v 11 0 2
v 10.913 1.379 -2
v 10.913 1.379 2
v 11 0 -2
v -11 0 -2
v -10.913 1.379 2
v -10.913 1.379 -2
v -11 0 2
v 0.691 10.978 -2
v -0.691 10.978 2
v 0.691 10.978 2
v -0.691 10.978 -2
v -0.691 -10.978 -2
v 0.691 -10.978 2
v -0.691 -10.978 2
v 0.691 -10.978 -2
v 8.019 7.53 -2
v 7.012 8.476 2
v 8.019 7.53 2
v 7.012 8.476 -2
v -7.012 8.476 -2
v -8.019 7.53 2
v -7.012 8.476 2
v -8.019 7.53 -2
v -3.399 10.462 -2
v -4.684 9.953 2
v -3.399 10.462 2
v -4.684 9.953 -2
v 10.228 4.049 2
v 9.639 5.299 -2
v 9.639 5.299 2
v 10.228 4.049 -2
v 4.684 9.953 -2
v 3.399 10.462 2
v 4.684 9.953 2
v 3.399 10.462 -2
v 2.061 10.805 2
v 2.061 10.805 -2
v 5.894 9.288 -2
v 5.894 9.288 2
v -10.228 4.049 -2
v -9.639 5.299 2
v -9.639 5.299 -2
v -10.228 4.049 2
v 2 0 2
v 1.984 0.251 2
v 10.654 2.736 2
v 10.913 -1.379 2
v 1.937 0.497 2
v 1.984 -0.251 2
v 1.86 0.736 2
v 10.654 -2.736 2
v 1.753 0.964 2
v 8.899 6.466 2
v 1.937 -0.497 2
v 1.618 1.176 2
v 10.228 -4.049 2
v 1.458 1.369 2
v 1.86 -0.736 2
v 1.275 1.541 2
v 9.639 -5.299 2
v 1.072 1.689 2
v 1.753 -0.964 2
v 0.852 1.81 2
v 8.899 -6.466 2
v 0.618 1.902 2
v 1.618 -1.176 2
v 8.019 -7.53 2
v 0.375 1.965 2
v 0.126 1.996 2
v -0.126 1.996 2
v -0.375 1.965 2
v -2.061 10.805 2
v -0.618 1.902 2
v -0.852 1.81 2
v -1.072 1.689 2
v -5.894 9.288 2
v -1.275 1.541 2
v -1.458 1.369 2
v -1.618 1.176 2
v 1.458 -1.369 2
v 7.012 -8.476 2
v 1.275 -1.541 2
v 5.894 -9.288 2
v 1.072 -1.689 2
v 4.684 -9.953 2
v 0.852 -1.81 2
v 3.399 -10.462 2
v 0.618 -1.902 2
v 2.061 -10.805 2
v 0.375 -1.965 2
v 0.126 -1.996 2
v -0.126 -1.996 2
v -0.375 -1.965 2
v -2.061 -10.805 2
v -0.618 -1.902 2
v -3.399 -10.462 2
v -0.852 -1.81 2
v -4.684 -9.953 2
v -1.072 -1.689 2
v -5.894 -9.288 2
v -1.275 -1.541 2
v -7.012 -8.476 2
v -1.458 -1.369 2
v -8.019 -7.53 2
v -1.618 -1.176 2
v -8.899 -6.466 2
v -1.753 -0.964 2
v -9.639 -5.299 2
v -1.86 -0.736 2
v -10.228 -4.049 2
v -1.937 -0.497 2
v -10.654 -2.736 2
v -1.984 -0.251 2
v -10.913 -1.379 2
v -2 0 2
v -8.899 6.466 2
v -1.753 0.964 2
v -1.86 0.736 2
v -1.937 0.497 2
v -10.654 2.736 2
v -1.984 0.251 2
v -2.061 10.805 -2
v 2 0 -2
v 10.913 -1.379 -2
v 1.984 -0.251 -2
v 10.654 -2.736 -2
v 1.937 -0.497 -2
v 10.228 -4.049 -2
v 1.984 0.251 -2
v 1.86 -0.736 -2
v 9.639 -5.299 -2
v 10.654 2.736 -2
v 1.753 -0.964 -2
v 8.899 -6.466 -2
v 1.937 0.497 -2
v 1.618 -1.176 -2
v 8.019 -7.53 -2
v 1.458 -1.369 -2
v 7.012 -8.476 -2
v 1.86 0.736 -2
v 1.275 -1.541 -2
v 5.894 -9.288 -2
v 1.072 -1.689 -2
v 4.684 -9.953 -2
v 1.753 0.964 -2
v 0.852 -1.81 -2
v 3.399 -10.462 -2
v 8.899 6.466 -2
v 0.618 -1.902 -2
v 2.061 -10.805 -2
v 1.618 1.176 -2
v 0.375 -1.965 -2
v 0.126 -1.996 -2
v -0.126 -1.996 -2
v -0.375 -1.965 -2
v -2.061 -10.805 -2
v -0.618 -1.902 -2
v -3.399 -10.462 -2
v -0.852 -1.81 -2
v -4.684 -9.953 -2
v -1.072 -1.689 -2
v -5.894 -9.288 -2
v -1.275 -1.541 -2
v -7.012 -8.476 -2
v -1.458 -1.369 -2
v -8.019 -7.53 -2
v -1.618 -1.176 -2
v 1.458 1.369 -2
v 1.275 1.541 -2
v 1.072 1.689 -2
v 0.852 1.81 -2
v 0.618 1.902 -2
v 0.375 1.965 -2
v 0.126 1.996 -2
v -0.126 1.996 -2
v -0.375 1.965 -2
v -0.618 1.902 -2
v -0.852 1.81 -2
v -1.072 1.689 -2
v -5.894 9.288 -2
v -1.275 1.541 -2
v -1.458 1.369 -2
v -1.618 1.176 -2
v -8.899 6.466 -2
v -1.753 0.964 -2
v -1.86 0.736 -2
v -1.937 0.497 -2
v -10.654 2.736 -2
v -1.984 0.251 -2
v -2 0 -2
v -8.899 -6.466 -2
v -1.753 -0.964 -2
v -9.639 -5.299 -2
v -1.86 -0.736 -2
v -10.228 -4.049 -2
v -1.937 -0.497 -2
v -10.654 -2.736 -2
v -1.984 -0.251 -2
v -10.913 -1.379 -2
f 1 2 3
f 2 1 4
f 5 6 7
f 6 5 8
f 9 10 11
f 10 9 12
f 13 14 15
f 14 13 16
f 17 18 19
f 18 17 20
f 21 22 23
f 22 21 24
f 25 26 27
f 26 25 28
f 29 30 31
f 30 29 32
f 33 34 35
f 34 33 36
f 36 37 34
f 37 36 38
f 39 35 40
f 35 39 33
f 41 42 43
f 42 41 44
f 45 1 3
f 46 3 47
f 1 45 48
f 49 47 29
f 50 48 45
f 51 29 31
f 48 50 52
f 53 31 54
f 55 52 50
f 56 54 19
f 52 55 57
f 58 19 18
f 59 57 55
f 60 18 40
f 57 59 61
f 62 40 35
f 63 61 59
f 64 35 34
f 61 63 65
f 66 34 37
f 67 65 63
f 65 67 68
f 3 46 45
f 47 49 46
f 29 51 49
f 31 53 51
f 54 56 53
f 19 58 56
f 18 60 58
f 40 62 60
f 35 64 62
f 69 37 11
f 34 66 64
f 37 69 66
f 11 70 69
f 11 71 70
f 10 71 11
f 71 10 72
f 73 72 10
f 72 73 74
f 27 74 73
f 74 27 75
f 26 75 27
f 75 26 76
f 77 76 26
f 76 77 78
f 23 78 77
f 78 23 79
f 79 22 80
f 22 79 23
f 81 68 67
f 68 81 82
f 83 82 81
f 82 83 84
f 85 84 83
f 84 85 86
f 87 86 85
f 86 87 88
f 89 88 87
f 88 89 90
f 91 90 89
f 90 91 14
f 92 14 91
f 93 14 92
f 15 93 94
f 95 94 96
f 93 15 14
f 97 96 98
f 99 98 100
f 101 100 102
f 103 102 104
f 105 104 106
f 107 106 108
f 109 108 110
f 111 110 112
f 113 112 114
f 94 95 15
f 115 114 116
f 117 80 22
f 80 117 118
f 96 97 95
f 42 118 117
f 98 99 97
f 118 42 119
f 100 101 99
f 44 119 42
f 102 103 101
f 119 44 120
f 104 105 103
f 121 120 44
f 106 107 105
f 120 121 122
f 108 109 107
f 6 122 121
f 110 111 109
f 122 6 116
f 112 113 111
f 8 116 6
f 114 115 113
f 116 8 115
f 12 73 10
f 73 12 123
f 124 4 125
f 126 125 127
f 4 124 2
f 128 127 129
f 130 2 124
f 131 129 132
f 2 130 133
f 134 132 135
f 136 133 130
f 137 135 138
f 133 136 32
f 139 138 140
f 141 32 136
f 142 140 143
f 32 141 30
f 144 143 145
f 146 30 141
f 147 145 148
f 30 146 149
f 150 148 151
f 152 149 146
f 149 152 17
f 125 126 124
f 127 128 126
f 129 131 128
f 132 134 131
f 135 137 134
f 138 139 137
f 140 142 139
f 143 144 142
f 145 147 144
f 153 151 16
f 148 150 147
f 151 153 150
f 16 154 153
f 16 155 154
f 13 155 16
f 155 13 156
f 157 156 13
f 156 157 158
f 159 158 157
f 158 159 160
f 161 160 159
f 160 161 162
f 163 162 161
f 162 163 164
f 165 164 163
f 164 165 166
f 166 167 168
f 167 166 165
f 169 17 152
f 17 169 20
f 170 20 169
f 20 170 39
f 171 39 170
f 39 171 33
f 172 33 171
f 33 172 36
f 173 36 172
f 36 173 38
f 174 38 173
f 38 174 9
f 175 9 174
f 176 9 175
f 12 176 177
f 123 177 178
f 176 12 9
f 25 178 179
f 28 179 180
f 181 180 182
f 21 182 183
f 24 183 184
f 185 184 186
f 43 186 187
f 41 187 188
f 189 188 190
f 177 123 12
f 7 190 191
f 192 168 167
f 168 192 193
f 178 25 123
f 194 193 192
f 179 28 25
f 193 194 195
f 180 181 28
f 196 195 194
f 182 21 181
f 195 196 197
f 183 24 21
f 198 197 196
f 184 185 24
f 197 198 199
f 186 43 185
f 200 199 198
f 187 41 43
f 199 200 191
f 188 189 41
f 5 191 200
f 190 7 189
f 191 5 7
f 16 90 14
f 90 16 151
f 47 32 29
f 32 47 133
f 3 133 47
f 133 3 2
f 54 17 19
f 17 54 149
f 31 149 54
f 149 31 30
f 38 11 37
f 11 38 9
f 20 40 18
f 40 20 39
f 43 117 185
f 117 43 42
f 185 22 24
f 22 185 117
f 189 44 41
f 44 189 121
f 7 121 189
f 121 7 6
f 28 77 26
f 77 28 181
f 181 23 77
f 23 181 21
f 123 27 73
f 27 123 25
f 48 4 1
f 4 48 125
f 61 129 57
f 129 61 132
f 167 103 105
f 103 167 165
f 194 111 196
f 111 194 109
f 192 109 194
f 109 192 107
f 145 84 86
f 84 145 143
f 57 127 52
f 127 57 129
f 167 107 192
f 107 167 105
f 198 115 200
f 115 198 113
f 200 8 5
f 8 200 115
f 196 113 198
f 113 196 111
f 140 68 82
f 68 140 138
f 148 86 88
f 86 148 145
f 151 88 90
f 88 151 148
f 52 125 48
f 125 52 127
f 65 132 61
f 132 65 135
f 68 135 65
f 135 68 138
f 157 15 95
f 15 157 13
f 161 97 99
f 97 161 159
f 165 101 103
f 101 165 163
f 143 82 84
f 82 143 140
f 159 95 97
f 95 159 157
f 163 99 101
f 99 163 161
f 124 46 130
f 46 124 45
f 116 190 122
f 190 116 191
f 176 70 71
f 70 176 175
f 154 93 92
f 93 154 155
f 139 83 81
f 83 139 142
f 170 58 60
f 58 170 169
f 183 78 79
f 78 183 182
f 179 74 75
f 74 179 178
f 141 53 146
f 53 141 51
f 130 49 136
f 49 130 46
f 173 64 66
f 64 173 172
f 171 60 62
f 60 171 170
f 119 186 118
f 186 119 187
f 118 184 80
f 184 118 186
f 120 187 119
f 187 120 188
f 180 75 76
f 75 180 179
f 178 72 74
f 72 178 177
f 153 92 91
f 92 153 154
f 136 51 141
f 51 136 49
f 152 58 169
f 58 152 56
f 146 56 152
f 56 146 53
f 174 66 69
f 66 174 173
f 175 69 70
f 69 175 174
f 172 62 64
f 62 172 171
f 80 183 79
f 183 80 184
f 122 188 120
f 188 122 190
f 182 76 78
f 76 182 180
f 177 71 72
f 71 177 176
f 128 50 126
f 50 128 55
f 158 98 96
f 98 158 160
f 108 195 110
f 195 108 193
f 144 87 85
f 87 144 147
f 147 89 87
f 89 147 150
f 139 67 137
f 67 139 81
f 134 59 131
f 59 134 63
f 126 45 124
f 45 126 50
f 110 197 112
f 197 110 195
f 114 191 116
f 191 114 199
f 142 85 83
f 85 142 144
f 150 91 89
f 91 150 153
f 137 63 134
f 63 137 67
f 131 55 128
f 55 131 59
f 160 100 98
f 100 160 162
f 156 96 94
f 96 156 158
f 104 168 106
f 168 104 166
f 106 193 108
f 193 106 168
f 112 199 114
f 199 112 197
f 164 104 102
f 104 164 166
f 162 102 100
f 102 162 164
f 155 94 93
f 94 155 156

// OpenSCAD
$fn = 50;


difference() {
	union() {
		translate(v = [0, 0, -2.0000000000]) {
			cylinder(h = 4, r = 11.0000000000);
		}
	}
	union() {
		translate(v = [0, 0, -100.0000000000]) {
			cylinder(h = 200, r = 2);
		}
	}
}
